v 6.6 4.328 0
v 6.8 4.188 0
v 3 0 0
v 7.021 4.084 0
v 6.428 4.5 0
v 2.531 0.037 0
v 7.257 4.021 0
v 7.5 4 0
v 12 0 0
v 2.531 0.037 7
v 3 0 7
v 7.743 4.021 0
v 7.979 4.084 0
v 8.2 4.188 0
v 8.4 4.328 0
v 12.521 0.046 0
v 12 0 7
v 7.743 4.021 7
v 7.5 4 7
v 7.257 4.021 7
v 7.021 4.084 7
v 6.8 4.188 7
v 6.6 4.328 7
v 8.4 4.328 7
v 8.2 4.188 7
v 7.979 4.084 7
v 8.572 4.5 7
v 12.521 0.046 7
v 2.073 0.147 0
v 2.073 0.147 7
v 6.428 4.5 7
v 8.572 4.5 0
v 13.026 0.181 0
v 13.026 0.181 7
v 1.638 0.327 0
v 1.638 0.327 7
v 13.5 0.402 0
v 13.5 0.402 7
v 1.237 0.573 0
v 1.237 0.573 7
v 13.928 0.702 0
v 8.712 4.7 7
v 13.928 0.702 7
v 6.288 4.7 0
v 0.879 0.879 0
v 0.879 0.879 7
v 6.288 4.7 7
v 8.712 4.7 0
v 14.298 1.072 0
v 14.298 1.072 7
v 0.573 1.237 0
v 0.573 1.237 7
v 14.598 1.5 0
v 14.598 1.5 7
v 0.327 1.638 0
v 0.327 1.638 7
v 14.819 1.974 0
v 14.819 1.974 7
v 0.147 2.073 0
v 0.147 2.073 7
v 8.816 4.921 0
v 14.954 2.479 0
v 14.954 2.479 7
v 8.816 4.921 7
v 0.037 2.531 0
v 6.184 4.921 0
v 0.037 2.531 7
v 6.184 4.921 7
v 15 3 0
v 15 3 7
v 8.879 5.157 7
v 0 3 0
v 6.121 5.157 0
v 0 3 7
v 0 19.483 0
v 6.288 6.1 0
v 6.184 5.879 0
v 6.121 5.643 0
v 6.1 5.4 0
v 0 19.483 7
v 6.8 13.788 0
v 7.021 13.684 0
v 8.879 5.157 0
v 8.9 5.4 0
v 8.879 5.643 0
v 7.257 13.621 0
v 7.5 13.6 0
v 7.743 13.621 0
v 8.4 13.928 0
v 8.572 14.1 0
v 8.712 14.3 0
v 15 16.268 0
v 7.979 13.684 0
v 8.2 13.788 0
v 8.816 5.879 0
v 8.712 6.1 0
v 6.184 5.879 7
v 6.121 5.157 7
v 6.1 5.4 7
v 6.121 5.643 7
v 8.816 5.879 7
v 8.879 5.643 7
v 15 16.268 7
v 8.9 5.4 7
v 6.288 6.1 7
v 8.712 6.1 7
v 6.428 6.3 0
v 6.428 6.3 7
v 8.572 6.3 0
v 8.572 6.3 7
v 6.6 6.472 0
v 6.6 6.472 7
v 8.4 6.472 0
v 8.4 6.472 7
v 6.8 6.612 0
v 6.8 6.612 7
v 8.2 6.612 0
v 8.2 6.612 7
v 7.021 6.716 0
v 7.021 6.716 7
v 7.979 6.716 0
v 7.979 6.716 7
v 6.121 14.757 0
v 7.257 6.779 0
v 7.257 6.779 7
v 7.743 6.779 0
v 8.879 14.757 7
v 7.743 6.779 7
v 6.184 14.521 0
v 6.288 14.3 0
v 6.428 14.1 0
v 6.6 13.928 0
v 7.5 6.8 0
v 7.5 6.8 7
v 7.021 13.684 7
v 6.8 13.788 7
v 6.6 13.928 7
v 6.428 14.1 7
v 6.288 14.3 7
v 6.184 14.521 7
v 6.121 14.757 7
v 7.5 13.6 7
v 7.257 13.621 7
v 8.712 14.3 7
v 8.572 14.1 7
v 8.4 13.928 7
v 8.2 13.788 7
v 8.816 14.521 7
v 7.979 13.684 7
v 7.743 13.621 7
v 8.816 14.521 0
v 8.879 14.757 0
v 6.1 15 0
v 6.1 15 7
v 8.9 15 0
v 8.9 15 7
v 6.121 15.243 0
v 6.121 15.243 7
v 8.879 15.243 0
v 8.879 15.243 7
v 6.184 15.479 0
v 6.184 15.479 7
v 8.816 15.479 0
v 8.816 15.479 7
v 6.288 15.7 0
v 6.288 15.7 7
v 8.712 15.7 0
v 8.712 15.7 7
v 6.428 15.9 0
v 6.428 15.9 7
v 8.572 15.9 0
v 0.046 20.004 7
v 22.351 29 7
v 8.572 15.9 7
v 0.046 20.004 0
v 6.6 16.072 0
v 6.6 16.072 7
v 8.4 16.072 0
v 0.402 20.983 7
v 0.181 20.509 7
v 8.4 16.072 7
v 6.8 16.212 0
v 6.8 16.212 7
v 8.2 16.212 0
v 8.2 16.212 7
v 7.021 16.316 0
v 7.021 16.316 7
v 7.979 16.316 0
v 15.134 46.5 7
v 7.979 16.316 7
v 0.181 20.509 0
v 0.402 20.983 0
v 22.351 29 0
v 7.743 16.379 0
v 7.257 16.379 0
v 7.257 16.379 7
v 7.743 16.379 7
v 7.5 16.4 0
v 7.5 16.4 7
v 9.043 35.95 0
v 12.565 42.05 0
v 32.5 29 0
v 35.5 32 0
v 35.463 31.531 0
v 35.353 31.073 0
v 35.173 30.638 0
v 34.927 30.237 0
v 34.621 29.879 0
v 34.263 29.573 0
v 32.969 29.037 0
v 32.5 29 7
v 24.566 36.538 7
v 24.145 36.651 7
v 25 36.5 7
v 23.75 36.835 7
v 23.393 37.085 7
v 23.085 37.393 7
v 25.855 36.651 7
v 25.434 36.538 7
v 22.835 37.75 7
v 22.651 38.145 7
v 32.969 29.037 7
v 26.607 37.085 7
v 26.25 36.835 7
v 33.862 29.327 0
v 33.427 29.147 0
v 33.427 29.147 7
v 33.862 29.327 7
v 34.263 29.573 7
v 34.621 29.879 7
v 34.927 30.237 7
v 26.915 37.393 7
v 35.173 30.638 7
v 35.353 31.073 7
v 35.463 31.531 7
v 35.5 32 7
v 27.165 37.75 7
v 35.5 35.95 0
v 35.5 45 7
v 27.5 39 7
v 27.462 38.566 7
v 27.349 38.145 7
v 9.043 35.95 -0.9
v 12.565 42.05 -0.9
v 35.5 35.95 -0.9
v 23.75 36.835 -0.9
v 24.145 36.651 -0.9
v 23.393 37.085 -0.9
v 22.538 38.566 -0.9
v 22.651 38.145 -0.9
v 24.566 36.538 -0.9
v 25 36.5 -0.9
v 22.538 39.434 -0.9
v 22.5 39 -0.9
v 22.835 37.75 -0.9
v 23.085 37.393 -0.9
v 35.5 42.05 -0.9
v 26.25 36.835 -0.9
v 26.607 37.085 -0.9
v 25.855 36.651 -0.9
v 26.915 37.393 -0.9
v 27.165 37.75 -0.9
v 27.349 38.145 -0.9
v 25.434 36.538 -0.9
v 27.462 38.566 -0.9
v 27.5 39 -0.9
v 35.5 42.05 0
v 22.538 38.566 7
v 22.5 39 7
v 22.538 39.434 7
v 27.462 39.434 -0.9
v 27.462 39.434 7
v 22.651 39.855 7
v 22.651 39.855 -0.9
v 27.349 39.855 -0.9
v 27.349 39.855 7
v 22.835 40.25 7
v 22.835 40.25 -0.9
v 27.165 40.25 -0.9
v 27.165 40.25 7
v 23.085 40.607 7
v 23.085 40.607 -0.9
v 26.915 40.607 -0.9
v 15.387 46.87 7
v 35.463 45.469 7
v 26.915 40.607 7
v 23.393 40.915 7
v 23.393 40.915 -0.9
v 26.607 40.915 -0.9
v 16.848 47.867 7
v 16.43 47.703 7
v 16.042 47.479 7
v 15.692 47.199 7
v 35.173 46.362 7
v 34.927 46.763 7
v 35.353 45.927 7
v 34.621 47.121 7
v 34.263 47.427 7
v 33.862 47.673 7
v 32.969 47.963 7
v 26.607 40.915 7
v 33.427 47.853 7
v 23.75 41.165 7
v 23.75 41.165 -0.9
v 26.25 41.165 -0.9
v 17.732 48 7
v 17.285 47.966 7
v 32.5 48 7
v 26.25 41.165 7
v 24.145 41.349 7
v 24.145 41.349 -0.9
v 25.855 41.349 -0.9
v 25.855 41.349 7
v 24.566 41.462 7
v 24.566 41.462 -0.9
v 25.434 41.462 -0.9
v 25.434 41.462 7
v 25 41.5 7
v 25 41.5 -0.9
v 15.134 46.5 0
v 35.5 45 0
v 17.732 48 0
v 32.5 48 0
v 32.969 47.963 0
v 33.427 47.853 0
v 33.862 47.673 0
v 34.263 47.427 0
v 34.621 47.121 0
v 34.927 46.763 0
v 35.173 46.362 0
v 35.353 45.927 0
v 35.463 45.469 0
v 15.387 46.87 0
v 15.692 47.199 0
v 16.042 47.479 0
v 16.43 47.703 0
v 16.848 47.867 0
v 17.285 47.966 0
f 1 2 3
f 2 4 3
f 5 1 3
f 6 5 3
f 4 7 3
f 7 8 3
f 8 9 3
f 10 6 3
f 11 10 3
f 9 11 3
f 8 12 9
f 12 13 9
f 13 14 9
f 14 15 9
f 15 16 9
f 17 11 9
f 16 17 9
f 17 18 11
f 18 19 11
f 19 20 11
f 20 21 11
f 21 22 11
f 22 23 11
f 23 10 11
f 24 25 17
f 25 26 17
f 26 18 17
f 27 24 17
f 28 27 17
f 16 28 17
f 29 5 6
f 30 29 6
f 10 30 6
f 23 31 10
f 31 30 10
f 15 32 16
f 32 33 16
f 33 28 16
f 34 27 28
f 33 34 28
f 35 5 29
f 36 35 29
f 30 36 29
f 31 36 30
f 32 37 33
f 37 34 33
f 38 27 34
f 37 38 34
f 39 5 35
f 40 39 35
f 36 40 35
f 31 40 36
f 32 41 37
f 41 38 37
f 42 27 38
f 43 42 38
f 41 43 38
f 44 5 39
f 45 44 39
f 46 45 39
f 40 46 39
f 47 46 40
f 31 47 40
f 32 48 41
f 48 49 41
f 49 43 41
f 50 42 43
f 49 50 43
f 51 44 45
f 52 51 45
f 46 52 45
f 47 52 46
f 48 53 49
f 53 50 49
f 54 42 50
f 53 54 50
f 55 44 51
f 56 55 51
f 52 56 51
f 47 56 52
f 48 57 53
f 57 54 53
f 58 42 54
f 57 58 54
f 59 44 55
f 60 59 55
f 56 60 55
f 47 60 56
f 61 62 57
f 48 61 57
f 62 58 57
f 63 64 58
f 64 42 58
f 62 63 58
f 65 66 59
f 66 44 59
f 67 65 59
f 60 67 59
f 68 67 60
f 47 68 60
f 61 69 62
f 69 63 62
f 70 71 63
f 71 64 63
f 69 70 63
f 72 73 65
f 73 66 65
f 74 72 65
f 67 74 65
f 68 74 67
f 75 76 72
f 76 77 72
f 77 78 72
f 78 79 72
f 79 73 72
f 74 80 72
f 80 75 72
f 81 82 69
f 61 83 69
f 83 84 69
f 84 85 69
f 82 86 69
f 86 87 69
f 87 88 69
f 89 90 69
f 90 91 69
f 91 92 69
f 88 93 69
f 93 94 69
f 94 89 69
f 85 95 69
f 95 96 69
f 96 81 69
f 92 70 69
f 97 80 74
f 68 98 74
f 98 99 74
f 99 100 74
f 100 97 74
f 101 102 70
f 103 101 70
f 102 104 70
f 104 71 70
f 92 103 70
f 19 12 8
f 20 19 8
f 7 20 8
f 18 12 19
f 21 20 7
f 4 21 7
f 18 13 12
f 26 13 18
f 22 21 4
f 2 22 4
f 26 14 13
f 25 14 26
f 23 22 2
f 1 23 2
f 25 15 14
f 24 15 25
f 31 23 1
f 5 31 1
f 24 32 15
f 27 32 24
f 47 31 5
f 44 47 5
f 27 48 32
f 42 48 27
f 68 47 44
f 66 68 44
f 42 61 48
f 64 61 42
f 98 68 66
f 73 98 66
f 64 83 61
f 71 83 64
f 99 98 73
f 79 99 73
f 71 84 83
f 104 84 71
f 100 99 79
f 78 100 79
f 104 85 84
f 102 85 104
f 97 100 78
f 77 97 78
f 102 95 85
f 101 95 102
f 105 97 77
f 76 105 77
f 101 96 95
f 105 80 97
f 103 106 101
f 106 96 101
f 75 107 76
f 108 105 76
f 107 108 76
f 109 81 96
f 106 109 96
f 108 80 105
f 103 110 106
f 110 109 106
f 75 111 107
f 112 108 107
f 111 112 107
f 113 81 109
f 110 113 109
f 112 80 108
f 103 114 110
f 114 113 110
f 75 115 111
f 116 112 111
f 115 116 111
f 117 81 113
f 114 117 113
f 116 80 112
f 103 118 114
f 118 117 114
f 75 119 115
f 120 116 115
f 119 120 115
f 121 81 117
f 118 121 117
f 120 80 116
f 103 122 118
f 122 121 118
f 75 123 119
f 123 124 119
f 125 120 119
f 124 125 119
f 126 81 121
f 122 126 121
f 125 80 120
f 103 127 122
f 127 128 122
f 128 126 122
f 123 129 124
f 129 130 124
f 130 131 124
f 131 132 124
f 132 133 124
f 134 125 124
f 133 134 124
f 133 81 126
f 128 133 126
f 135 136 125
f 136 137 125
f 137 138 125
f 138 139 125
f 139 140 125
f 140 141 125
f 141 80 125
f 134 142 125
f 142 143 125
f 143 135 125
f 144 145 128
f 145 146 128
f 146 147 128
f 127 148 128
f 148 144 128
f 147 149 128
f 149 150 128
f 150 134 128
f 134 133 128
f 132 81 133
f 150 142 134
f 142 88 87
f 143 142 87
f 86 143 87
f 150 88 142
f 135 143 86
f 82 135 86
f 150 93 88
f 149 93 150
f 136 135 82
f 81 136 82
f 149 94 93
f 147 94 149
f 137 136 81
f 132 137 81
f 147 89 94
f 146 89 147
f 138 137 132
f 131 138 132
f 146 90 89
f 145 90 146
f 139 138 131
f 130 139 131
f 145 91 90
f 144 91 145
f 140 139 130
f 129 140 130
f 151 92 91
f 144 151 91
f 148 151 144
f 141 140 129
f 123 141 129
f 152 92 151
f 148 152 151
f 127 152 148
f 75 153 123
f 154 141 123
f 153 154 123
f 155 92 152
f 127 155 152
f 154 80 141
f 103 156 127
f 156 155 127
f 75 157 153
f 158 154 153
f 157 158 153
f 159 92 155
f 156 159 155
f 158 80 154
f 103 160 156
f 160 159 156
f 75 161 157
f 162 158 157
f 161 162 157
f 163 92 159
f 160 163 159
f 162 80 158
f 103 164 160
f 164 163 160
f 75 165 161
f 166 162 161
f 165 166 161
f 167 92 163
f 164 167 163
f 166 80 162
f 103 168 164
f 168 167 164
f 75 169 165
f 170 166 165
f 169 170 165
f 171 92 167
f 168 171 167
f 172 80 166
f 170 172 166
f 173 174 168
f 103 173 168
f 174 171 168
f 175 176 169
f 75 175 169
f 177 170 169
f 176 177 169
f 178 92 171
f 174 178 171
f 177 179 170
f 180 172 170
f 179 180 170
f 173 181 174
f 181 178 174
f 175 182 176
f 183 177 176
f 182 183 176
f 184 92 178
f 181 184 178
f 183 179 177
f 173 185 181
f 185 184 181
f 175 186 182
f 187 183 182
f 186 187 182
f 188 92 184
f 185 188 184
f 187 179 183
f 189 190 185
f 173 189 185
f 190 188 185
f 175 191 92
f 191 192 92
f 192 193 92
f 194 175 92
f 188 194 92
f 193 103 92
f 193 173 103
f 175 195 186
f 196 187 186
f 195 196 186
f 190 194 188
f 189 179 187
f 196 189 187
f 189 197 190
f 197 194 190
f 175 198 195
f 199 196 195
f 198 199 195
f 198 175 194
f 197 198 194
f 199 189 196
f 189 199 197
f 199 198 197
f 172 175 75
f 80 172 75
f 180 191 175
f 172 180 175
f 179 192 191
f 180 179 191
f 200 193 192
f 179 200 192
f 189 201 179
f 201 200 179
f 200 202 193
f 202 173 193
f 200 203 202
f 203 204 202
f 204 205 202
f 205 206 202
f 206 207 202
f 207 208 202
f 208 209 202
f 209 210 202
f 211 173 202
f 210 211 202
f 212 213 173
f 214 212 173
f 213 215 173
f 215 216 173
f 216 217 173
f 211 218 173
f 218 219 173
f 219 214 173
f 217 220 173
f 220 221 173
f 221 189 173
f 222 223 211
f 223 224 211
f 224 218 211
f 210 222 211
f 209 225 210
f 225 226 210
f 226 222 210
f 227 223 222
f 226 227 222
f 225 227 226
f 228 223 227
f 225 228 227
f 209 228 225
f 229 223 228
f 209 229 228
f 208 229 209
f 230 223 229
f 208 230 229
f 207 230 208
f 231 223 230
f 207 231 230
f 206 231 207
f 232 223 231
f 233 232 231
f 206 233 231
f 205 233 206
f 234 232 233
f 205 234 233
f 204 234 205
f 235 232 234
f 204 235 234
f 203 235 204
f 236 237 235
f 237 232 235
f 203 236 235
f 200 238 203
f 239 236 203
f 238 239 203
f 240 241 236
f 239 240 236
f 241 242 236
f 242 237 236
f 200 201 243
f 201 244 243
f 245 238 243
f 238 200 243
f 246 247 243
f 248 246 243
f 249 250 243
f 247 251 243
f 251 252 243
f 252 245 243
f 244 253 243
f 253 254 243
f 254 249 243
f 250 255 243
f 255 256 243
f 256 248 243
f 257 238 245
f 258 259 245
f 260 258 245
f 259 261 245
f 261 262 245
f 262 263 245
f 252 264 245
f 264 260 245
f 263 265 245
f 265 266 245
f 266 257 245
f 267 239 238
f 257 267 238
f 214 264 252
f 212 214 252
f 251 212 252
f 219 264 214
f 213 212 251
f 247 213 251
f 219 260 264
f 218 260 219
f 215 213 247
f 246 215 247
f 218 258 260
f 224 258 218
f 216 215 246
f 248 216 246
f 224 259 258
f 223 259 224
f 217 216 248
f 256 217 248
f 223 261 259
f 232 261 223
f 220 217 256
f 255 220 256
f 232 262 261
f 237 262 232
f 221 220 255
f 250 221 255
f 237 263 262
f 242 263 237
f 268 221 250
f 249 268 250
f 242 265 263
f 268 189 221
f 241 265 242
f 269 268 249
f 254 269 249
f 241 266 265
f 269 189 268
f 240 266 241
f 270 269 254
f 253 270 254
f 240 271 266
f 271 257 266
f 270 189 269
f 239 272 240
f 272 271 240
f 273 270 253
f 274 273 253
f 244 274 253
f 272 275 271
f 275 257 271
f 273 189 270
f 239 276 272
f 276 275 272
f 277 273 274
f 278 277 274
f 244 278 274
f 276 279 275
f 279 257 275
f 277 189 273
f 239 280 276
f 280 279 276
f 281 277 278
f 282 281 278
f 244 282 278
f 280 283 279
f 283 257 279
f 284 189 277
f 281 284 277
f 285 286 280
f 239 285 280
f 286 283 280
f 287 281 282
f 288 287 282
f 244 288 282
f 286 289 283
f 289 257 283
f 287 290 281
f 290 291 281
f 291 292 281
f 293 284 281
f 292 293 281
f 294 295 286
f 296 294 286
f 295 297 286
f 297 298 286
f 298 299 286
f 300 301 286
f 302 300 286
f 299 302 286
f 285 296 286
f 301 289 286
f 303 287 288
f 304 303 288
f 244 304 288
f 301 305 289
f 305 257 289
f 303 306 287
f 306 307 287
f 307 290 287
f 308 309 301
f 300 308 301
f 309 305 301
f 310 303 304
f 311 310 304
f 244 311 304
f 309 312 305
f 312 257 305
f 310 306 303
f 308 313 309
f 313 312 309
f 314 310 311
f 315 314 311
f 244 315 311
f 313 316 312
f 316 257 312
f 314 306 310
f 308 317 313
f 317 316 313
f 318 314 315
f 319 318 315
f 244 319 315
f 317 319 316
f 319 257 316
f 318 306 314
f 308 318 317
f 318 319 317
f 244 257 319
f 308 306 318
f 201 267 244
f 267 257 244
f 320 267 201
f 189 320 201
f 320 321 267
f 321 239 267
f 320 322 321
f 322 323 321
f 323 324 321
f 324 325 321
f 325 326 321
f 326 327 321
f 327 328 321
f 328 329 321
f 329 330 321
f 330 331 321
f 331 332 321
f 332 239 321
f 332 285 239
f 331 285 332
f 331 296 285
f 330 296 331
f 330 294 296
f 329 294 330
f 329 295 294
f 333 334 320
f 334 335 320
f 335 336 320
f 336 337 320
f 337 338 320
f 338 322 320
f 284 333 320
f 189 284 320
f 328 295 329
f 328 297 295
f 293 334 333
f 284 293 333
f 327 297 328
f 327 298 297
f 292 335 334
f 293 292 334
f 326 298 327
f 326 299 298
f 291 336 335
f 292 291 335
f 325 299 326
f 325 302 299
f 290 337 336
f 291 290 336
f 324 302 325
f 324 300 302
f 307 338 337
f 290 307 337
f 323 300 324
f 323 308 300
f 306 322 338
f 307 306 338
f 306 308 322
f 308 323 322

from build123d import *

# Parameters (mm, degrees)
SKETCH1_R           = 2.5
SKETCH1_R_2         = 1.4
BOSS_EXTRUDE1_DEPTH = 7
BOSS_EXTRUDE2_REACH = 62.11
SKETCH2_W           = 0.9
SKETCH2_H           = 6.1
CUT_EXTRUDE1_REACH  = 62.11
SKETCH3_R           = 2.5


with BuildPart() as part:
    # Sketch1 → Boss-Extrude1 (new body)
    with BuildSketch(Plane.XY):
        with BuildLine():
            Line((3, 0), (12, 0))
            ThreePointArc((12, 0), (14.121320344, 0.878679656), (15, 3))
            Line((15, 3), (15, 16.267949192))
            Line((15, 16.267949192), (22.350852961, 29))
            Line((22.350852961, 29), (32.5, 29))
            ThreePointArc((32.5, 29), (34.621320344, 29.878679656), (35.5, 32))
            Line((35.5, 32), (35.5, 45))
            ThreePointArc((35.5, 45), (34.621320344, 47.121320344), (32.5, 48))
            Line((32.5, 48), (17.732050808, 48))
            ThreePointArc((17.732050808, 48), (16.232050808, 47.598076211), (15.133974596, 46.5))
            Line((15.133974596, 46.5), (0.401923789, 20.983339502))
            ThreePointArc((0.401923789, 20.983339502), (0.102222521, 20.259796637), (0, 19.483339502))
            Line((0, 19.483339502), (0, 3))
            ThreePointArc((0, 3), (0.878679656, 0.878679656), (3, 0))
        make_face()
        with Locations((25, 39)):
            Circle(SKETCH1_R, mode=Mode.SUBTRACT)
        with Locations((7.5, 5.4)):
            Circle(SKETCH1_R_2, mode=Mode.SUBTRACT)
        with Locations((7.5, 15)):
            Circle(SKETCH1_R_2, mode=Mode.SUBTRACT)
    extrude(amount=BOSS_EXTRUDE1_DEPTH)

    # Boss-Extrude2: up to this plane
    boss_extrude2_end = Plane(origin=(15.133974596, 46.5, 7), z_dir=(0.86602540378444, -0.4999999999999976, 0))
    # Sketch2 → Boss-Extrude2 (add, up to the surface)
    with BuildSketch(Plane(origin=(35.5, 0, 0), x_dir=(0, 0, -1), z_dir=(1, 0, 0)), mode=Mode.PRIVATE) as boss_extrude2_sk1:
        with Locations((0.45, 39)):
            Rectangle(SKETCH2_W, SKETCH2_H)
    boss_extrude2_tool1 = split(extrude(boss_extrude2_sk1.sketch, amount=-BOSS_EXTRUDE2_REACH, mode=Mode.PRIVATE), bisect_by=boss_extrude2_end, keep=Keep.BOTH, mode=Mode.PRIVATE)
    add(boss_extrude2_tool1.solids().sort_by_distance((35.5, 39, -0.45))[0])

    # Sketch3 → Cut-Extrude1 (cut, up to next)
    with BuildSketch(Plane.XY, mode=Mode.PRIVATE) as cut_extrude1_sk1:
        with Locations(Location((25, 39, 0), (0, 0, 270))):
            Circle(SKETCH3_R)
    cut_extrude1_tool1 = extrude(cut_extrude1_sk1.sketch, amount=-CUT_EXTRUDE1_REACH, mode=Mode.PRIVATE) & part.part
    add(cut_extrude1_tool1.solids().sort_by_distance((25, 39, 0))[0], mode=Mode.SUBTRACT)


solid = part.part
